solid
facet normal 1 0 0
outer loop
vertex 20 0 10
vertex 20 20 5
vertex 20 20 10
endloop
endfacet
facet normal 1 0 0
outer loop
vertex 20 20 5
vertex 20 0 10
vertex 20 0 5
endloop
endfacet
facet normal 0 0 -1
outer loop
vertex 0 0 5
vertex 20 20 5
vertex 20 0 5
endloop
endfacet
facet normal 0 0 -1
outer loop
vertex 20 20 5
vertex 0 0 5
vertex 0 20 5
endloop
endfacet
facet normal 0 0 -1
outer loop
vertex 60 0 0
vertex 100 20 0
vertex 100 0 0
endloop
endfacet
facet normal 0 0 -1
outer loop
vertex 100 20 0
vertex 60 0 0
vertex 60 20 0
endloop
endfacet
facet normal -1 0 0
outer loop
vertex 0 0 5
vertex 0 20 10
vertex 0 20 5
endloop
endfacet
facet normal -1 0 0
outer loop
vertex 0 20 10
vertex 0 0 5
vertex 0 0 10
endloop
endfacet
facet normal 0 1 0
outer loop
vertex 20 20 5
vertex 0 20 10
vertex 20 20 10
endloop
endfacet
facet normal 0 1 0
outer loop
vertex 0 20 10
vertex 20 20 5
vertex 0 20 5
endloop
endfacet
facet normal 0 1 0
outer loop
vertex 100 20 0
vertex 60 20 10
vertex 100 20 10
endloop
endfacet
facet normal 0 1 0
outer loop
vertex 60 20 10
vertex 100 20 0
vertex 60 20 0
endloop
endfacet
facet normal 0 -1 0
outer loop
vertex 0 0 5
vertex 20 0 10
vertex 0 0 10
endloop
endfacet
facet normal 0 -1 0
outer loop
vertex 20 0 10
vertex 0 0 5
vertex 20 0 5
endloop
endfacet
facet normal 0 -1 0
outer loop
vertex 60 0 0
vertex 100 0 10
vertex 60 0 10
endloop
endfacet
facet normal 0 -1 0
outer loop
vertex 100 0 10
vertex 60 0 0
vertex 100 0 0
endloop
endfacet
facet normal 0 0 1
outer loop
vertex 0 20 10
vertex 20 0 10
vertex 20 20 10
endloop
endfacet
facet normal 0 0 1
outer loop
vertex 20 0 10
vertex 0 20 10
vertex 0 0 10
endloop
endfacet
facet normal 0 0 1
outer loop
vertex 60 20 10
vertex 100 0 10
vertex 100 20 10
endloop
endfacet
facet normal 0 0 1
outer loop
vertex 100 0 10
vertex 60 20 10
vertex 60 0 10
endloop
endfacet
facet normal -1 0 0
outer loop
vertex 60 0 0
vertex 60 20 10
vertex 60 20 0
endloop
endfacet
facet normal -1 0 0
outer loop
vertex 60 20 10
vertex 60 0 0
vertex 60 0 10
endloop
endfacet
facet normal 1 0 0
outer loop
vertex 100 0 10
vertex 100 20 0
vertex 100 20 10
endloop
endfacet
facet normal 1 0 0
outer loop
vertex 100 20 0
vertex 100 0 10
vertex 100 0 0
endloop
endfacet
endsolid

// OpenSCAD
// Base block dimensions
base_length = 100;  // Length of the block
base_width = 20;    // Width of the block
base_height = 10;   // Height of the block

// Cutout dimensions
cutout_width = 20;  // Width of each cutout
cutout_height_step = 5;  // Height increment for each step
num_cutouts = 3;    // Number of cutouts

module base_block() {
    // Create the base block
    difference() {
        // Main block
        cube([base_length, base_width, base_height]);

        // Cutouts
        for (i = [0:num_cutouts-1]) {
            translate([i * cutout_width, 0, 0])
                cube([cutout_width, base_width, (i + 1) * cutout_height_step]);
        }
    }
}

// Render the base block
base_block();
